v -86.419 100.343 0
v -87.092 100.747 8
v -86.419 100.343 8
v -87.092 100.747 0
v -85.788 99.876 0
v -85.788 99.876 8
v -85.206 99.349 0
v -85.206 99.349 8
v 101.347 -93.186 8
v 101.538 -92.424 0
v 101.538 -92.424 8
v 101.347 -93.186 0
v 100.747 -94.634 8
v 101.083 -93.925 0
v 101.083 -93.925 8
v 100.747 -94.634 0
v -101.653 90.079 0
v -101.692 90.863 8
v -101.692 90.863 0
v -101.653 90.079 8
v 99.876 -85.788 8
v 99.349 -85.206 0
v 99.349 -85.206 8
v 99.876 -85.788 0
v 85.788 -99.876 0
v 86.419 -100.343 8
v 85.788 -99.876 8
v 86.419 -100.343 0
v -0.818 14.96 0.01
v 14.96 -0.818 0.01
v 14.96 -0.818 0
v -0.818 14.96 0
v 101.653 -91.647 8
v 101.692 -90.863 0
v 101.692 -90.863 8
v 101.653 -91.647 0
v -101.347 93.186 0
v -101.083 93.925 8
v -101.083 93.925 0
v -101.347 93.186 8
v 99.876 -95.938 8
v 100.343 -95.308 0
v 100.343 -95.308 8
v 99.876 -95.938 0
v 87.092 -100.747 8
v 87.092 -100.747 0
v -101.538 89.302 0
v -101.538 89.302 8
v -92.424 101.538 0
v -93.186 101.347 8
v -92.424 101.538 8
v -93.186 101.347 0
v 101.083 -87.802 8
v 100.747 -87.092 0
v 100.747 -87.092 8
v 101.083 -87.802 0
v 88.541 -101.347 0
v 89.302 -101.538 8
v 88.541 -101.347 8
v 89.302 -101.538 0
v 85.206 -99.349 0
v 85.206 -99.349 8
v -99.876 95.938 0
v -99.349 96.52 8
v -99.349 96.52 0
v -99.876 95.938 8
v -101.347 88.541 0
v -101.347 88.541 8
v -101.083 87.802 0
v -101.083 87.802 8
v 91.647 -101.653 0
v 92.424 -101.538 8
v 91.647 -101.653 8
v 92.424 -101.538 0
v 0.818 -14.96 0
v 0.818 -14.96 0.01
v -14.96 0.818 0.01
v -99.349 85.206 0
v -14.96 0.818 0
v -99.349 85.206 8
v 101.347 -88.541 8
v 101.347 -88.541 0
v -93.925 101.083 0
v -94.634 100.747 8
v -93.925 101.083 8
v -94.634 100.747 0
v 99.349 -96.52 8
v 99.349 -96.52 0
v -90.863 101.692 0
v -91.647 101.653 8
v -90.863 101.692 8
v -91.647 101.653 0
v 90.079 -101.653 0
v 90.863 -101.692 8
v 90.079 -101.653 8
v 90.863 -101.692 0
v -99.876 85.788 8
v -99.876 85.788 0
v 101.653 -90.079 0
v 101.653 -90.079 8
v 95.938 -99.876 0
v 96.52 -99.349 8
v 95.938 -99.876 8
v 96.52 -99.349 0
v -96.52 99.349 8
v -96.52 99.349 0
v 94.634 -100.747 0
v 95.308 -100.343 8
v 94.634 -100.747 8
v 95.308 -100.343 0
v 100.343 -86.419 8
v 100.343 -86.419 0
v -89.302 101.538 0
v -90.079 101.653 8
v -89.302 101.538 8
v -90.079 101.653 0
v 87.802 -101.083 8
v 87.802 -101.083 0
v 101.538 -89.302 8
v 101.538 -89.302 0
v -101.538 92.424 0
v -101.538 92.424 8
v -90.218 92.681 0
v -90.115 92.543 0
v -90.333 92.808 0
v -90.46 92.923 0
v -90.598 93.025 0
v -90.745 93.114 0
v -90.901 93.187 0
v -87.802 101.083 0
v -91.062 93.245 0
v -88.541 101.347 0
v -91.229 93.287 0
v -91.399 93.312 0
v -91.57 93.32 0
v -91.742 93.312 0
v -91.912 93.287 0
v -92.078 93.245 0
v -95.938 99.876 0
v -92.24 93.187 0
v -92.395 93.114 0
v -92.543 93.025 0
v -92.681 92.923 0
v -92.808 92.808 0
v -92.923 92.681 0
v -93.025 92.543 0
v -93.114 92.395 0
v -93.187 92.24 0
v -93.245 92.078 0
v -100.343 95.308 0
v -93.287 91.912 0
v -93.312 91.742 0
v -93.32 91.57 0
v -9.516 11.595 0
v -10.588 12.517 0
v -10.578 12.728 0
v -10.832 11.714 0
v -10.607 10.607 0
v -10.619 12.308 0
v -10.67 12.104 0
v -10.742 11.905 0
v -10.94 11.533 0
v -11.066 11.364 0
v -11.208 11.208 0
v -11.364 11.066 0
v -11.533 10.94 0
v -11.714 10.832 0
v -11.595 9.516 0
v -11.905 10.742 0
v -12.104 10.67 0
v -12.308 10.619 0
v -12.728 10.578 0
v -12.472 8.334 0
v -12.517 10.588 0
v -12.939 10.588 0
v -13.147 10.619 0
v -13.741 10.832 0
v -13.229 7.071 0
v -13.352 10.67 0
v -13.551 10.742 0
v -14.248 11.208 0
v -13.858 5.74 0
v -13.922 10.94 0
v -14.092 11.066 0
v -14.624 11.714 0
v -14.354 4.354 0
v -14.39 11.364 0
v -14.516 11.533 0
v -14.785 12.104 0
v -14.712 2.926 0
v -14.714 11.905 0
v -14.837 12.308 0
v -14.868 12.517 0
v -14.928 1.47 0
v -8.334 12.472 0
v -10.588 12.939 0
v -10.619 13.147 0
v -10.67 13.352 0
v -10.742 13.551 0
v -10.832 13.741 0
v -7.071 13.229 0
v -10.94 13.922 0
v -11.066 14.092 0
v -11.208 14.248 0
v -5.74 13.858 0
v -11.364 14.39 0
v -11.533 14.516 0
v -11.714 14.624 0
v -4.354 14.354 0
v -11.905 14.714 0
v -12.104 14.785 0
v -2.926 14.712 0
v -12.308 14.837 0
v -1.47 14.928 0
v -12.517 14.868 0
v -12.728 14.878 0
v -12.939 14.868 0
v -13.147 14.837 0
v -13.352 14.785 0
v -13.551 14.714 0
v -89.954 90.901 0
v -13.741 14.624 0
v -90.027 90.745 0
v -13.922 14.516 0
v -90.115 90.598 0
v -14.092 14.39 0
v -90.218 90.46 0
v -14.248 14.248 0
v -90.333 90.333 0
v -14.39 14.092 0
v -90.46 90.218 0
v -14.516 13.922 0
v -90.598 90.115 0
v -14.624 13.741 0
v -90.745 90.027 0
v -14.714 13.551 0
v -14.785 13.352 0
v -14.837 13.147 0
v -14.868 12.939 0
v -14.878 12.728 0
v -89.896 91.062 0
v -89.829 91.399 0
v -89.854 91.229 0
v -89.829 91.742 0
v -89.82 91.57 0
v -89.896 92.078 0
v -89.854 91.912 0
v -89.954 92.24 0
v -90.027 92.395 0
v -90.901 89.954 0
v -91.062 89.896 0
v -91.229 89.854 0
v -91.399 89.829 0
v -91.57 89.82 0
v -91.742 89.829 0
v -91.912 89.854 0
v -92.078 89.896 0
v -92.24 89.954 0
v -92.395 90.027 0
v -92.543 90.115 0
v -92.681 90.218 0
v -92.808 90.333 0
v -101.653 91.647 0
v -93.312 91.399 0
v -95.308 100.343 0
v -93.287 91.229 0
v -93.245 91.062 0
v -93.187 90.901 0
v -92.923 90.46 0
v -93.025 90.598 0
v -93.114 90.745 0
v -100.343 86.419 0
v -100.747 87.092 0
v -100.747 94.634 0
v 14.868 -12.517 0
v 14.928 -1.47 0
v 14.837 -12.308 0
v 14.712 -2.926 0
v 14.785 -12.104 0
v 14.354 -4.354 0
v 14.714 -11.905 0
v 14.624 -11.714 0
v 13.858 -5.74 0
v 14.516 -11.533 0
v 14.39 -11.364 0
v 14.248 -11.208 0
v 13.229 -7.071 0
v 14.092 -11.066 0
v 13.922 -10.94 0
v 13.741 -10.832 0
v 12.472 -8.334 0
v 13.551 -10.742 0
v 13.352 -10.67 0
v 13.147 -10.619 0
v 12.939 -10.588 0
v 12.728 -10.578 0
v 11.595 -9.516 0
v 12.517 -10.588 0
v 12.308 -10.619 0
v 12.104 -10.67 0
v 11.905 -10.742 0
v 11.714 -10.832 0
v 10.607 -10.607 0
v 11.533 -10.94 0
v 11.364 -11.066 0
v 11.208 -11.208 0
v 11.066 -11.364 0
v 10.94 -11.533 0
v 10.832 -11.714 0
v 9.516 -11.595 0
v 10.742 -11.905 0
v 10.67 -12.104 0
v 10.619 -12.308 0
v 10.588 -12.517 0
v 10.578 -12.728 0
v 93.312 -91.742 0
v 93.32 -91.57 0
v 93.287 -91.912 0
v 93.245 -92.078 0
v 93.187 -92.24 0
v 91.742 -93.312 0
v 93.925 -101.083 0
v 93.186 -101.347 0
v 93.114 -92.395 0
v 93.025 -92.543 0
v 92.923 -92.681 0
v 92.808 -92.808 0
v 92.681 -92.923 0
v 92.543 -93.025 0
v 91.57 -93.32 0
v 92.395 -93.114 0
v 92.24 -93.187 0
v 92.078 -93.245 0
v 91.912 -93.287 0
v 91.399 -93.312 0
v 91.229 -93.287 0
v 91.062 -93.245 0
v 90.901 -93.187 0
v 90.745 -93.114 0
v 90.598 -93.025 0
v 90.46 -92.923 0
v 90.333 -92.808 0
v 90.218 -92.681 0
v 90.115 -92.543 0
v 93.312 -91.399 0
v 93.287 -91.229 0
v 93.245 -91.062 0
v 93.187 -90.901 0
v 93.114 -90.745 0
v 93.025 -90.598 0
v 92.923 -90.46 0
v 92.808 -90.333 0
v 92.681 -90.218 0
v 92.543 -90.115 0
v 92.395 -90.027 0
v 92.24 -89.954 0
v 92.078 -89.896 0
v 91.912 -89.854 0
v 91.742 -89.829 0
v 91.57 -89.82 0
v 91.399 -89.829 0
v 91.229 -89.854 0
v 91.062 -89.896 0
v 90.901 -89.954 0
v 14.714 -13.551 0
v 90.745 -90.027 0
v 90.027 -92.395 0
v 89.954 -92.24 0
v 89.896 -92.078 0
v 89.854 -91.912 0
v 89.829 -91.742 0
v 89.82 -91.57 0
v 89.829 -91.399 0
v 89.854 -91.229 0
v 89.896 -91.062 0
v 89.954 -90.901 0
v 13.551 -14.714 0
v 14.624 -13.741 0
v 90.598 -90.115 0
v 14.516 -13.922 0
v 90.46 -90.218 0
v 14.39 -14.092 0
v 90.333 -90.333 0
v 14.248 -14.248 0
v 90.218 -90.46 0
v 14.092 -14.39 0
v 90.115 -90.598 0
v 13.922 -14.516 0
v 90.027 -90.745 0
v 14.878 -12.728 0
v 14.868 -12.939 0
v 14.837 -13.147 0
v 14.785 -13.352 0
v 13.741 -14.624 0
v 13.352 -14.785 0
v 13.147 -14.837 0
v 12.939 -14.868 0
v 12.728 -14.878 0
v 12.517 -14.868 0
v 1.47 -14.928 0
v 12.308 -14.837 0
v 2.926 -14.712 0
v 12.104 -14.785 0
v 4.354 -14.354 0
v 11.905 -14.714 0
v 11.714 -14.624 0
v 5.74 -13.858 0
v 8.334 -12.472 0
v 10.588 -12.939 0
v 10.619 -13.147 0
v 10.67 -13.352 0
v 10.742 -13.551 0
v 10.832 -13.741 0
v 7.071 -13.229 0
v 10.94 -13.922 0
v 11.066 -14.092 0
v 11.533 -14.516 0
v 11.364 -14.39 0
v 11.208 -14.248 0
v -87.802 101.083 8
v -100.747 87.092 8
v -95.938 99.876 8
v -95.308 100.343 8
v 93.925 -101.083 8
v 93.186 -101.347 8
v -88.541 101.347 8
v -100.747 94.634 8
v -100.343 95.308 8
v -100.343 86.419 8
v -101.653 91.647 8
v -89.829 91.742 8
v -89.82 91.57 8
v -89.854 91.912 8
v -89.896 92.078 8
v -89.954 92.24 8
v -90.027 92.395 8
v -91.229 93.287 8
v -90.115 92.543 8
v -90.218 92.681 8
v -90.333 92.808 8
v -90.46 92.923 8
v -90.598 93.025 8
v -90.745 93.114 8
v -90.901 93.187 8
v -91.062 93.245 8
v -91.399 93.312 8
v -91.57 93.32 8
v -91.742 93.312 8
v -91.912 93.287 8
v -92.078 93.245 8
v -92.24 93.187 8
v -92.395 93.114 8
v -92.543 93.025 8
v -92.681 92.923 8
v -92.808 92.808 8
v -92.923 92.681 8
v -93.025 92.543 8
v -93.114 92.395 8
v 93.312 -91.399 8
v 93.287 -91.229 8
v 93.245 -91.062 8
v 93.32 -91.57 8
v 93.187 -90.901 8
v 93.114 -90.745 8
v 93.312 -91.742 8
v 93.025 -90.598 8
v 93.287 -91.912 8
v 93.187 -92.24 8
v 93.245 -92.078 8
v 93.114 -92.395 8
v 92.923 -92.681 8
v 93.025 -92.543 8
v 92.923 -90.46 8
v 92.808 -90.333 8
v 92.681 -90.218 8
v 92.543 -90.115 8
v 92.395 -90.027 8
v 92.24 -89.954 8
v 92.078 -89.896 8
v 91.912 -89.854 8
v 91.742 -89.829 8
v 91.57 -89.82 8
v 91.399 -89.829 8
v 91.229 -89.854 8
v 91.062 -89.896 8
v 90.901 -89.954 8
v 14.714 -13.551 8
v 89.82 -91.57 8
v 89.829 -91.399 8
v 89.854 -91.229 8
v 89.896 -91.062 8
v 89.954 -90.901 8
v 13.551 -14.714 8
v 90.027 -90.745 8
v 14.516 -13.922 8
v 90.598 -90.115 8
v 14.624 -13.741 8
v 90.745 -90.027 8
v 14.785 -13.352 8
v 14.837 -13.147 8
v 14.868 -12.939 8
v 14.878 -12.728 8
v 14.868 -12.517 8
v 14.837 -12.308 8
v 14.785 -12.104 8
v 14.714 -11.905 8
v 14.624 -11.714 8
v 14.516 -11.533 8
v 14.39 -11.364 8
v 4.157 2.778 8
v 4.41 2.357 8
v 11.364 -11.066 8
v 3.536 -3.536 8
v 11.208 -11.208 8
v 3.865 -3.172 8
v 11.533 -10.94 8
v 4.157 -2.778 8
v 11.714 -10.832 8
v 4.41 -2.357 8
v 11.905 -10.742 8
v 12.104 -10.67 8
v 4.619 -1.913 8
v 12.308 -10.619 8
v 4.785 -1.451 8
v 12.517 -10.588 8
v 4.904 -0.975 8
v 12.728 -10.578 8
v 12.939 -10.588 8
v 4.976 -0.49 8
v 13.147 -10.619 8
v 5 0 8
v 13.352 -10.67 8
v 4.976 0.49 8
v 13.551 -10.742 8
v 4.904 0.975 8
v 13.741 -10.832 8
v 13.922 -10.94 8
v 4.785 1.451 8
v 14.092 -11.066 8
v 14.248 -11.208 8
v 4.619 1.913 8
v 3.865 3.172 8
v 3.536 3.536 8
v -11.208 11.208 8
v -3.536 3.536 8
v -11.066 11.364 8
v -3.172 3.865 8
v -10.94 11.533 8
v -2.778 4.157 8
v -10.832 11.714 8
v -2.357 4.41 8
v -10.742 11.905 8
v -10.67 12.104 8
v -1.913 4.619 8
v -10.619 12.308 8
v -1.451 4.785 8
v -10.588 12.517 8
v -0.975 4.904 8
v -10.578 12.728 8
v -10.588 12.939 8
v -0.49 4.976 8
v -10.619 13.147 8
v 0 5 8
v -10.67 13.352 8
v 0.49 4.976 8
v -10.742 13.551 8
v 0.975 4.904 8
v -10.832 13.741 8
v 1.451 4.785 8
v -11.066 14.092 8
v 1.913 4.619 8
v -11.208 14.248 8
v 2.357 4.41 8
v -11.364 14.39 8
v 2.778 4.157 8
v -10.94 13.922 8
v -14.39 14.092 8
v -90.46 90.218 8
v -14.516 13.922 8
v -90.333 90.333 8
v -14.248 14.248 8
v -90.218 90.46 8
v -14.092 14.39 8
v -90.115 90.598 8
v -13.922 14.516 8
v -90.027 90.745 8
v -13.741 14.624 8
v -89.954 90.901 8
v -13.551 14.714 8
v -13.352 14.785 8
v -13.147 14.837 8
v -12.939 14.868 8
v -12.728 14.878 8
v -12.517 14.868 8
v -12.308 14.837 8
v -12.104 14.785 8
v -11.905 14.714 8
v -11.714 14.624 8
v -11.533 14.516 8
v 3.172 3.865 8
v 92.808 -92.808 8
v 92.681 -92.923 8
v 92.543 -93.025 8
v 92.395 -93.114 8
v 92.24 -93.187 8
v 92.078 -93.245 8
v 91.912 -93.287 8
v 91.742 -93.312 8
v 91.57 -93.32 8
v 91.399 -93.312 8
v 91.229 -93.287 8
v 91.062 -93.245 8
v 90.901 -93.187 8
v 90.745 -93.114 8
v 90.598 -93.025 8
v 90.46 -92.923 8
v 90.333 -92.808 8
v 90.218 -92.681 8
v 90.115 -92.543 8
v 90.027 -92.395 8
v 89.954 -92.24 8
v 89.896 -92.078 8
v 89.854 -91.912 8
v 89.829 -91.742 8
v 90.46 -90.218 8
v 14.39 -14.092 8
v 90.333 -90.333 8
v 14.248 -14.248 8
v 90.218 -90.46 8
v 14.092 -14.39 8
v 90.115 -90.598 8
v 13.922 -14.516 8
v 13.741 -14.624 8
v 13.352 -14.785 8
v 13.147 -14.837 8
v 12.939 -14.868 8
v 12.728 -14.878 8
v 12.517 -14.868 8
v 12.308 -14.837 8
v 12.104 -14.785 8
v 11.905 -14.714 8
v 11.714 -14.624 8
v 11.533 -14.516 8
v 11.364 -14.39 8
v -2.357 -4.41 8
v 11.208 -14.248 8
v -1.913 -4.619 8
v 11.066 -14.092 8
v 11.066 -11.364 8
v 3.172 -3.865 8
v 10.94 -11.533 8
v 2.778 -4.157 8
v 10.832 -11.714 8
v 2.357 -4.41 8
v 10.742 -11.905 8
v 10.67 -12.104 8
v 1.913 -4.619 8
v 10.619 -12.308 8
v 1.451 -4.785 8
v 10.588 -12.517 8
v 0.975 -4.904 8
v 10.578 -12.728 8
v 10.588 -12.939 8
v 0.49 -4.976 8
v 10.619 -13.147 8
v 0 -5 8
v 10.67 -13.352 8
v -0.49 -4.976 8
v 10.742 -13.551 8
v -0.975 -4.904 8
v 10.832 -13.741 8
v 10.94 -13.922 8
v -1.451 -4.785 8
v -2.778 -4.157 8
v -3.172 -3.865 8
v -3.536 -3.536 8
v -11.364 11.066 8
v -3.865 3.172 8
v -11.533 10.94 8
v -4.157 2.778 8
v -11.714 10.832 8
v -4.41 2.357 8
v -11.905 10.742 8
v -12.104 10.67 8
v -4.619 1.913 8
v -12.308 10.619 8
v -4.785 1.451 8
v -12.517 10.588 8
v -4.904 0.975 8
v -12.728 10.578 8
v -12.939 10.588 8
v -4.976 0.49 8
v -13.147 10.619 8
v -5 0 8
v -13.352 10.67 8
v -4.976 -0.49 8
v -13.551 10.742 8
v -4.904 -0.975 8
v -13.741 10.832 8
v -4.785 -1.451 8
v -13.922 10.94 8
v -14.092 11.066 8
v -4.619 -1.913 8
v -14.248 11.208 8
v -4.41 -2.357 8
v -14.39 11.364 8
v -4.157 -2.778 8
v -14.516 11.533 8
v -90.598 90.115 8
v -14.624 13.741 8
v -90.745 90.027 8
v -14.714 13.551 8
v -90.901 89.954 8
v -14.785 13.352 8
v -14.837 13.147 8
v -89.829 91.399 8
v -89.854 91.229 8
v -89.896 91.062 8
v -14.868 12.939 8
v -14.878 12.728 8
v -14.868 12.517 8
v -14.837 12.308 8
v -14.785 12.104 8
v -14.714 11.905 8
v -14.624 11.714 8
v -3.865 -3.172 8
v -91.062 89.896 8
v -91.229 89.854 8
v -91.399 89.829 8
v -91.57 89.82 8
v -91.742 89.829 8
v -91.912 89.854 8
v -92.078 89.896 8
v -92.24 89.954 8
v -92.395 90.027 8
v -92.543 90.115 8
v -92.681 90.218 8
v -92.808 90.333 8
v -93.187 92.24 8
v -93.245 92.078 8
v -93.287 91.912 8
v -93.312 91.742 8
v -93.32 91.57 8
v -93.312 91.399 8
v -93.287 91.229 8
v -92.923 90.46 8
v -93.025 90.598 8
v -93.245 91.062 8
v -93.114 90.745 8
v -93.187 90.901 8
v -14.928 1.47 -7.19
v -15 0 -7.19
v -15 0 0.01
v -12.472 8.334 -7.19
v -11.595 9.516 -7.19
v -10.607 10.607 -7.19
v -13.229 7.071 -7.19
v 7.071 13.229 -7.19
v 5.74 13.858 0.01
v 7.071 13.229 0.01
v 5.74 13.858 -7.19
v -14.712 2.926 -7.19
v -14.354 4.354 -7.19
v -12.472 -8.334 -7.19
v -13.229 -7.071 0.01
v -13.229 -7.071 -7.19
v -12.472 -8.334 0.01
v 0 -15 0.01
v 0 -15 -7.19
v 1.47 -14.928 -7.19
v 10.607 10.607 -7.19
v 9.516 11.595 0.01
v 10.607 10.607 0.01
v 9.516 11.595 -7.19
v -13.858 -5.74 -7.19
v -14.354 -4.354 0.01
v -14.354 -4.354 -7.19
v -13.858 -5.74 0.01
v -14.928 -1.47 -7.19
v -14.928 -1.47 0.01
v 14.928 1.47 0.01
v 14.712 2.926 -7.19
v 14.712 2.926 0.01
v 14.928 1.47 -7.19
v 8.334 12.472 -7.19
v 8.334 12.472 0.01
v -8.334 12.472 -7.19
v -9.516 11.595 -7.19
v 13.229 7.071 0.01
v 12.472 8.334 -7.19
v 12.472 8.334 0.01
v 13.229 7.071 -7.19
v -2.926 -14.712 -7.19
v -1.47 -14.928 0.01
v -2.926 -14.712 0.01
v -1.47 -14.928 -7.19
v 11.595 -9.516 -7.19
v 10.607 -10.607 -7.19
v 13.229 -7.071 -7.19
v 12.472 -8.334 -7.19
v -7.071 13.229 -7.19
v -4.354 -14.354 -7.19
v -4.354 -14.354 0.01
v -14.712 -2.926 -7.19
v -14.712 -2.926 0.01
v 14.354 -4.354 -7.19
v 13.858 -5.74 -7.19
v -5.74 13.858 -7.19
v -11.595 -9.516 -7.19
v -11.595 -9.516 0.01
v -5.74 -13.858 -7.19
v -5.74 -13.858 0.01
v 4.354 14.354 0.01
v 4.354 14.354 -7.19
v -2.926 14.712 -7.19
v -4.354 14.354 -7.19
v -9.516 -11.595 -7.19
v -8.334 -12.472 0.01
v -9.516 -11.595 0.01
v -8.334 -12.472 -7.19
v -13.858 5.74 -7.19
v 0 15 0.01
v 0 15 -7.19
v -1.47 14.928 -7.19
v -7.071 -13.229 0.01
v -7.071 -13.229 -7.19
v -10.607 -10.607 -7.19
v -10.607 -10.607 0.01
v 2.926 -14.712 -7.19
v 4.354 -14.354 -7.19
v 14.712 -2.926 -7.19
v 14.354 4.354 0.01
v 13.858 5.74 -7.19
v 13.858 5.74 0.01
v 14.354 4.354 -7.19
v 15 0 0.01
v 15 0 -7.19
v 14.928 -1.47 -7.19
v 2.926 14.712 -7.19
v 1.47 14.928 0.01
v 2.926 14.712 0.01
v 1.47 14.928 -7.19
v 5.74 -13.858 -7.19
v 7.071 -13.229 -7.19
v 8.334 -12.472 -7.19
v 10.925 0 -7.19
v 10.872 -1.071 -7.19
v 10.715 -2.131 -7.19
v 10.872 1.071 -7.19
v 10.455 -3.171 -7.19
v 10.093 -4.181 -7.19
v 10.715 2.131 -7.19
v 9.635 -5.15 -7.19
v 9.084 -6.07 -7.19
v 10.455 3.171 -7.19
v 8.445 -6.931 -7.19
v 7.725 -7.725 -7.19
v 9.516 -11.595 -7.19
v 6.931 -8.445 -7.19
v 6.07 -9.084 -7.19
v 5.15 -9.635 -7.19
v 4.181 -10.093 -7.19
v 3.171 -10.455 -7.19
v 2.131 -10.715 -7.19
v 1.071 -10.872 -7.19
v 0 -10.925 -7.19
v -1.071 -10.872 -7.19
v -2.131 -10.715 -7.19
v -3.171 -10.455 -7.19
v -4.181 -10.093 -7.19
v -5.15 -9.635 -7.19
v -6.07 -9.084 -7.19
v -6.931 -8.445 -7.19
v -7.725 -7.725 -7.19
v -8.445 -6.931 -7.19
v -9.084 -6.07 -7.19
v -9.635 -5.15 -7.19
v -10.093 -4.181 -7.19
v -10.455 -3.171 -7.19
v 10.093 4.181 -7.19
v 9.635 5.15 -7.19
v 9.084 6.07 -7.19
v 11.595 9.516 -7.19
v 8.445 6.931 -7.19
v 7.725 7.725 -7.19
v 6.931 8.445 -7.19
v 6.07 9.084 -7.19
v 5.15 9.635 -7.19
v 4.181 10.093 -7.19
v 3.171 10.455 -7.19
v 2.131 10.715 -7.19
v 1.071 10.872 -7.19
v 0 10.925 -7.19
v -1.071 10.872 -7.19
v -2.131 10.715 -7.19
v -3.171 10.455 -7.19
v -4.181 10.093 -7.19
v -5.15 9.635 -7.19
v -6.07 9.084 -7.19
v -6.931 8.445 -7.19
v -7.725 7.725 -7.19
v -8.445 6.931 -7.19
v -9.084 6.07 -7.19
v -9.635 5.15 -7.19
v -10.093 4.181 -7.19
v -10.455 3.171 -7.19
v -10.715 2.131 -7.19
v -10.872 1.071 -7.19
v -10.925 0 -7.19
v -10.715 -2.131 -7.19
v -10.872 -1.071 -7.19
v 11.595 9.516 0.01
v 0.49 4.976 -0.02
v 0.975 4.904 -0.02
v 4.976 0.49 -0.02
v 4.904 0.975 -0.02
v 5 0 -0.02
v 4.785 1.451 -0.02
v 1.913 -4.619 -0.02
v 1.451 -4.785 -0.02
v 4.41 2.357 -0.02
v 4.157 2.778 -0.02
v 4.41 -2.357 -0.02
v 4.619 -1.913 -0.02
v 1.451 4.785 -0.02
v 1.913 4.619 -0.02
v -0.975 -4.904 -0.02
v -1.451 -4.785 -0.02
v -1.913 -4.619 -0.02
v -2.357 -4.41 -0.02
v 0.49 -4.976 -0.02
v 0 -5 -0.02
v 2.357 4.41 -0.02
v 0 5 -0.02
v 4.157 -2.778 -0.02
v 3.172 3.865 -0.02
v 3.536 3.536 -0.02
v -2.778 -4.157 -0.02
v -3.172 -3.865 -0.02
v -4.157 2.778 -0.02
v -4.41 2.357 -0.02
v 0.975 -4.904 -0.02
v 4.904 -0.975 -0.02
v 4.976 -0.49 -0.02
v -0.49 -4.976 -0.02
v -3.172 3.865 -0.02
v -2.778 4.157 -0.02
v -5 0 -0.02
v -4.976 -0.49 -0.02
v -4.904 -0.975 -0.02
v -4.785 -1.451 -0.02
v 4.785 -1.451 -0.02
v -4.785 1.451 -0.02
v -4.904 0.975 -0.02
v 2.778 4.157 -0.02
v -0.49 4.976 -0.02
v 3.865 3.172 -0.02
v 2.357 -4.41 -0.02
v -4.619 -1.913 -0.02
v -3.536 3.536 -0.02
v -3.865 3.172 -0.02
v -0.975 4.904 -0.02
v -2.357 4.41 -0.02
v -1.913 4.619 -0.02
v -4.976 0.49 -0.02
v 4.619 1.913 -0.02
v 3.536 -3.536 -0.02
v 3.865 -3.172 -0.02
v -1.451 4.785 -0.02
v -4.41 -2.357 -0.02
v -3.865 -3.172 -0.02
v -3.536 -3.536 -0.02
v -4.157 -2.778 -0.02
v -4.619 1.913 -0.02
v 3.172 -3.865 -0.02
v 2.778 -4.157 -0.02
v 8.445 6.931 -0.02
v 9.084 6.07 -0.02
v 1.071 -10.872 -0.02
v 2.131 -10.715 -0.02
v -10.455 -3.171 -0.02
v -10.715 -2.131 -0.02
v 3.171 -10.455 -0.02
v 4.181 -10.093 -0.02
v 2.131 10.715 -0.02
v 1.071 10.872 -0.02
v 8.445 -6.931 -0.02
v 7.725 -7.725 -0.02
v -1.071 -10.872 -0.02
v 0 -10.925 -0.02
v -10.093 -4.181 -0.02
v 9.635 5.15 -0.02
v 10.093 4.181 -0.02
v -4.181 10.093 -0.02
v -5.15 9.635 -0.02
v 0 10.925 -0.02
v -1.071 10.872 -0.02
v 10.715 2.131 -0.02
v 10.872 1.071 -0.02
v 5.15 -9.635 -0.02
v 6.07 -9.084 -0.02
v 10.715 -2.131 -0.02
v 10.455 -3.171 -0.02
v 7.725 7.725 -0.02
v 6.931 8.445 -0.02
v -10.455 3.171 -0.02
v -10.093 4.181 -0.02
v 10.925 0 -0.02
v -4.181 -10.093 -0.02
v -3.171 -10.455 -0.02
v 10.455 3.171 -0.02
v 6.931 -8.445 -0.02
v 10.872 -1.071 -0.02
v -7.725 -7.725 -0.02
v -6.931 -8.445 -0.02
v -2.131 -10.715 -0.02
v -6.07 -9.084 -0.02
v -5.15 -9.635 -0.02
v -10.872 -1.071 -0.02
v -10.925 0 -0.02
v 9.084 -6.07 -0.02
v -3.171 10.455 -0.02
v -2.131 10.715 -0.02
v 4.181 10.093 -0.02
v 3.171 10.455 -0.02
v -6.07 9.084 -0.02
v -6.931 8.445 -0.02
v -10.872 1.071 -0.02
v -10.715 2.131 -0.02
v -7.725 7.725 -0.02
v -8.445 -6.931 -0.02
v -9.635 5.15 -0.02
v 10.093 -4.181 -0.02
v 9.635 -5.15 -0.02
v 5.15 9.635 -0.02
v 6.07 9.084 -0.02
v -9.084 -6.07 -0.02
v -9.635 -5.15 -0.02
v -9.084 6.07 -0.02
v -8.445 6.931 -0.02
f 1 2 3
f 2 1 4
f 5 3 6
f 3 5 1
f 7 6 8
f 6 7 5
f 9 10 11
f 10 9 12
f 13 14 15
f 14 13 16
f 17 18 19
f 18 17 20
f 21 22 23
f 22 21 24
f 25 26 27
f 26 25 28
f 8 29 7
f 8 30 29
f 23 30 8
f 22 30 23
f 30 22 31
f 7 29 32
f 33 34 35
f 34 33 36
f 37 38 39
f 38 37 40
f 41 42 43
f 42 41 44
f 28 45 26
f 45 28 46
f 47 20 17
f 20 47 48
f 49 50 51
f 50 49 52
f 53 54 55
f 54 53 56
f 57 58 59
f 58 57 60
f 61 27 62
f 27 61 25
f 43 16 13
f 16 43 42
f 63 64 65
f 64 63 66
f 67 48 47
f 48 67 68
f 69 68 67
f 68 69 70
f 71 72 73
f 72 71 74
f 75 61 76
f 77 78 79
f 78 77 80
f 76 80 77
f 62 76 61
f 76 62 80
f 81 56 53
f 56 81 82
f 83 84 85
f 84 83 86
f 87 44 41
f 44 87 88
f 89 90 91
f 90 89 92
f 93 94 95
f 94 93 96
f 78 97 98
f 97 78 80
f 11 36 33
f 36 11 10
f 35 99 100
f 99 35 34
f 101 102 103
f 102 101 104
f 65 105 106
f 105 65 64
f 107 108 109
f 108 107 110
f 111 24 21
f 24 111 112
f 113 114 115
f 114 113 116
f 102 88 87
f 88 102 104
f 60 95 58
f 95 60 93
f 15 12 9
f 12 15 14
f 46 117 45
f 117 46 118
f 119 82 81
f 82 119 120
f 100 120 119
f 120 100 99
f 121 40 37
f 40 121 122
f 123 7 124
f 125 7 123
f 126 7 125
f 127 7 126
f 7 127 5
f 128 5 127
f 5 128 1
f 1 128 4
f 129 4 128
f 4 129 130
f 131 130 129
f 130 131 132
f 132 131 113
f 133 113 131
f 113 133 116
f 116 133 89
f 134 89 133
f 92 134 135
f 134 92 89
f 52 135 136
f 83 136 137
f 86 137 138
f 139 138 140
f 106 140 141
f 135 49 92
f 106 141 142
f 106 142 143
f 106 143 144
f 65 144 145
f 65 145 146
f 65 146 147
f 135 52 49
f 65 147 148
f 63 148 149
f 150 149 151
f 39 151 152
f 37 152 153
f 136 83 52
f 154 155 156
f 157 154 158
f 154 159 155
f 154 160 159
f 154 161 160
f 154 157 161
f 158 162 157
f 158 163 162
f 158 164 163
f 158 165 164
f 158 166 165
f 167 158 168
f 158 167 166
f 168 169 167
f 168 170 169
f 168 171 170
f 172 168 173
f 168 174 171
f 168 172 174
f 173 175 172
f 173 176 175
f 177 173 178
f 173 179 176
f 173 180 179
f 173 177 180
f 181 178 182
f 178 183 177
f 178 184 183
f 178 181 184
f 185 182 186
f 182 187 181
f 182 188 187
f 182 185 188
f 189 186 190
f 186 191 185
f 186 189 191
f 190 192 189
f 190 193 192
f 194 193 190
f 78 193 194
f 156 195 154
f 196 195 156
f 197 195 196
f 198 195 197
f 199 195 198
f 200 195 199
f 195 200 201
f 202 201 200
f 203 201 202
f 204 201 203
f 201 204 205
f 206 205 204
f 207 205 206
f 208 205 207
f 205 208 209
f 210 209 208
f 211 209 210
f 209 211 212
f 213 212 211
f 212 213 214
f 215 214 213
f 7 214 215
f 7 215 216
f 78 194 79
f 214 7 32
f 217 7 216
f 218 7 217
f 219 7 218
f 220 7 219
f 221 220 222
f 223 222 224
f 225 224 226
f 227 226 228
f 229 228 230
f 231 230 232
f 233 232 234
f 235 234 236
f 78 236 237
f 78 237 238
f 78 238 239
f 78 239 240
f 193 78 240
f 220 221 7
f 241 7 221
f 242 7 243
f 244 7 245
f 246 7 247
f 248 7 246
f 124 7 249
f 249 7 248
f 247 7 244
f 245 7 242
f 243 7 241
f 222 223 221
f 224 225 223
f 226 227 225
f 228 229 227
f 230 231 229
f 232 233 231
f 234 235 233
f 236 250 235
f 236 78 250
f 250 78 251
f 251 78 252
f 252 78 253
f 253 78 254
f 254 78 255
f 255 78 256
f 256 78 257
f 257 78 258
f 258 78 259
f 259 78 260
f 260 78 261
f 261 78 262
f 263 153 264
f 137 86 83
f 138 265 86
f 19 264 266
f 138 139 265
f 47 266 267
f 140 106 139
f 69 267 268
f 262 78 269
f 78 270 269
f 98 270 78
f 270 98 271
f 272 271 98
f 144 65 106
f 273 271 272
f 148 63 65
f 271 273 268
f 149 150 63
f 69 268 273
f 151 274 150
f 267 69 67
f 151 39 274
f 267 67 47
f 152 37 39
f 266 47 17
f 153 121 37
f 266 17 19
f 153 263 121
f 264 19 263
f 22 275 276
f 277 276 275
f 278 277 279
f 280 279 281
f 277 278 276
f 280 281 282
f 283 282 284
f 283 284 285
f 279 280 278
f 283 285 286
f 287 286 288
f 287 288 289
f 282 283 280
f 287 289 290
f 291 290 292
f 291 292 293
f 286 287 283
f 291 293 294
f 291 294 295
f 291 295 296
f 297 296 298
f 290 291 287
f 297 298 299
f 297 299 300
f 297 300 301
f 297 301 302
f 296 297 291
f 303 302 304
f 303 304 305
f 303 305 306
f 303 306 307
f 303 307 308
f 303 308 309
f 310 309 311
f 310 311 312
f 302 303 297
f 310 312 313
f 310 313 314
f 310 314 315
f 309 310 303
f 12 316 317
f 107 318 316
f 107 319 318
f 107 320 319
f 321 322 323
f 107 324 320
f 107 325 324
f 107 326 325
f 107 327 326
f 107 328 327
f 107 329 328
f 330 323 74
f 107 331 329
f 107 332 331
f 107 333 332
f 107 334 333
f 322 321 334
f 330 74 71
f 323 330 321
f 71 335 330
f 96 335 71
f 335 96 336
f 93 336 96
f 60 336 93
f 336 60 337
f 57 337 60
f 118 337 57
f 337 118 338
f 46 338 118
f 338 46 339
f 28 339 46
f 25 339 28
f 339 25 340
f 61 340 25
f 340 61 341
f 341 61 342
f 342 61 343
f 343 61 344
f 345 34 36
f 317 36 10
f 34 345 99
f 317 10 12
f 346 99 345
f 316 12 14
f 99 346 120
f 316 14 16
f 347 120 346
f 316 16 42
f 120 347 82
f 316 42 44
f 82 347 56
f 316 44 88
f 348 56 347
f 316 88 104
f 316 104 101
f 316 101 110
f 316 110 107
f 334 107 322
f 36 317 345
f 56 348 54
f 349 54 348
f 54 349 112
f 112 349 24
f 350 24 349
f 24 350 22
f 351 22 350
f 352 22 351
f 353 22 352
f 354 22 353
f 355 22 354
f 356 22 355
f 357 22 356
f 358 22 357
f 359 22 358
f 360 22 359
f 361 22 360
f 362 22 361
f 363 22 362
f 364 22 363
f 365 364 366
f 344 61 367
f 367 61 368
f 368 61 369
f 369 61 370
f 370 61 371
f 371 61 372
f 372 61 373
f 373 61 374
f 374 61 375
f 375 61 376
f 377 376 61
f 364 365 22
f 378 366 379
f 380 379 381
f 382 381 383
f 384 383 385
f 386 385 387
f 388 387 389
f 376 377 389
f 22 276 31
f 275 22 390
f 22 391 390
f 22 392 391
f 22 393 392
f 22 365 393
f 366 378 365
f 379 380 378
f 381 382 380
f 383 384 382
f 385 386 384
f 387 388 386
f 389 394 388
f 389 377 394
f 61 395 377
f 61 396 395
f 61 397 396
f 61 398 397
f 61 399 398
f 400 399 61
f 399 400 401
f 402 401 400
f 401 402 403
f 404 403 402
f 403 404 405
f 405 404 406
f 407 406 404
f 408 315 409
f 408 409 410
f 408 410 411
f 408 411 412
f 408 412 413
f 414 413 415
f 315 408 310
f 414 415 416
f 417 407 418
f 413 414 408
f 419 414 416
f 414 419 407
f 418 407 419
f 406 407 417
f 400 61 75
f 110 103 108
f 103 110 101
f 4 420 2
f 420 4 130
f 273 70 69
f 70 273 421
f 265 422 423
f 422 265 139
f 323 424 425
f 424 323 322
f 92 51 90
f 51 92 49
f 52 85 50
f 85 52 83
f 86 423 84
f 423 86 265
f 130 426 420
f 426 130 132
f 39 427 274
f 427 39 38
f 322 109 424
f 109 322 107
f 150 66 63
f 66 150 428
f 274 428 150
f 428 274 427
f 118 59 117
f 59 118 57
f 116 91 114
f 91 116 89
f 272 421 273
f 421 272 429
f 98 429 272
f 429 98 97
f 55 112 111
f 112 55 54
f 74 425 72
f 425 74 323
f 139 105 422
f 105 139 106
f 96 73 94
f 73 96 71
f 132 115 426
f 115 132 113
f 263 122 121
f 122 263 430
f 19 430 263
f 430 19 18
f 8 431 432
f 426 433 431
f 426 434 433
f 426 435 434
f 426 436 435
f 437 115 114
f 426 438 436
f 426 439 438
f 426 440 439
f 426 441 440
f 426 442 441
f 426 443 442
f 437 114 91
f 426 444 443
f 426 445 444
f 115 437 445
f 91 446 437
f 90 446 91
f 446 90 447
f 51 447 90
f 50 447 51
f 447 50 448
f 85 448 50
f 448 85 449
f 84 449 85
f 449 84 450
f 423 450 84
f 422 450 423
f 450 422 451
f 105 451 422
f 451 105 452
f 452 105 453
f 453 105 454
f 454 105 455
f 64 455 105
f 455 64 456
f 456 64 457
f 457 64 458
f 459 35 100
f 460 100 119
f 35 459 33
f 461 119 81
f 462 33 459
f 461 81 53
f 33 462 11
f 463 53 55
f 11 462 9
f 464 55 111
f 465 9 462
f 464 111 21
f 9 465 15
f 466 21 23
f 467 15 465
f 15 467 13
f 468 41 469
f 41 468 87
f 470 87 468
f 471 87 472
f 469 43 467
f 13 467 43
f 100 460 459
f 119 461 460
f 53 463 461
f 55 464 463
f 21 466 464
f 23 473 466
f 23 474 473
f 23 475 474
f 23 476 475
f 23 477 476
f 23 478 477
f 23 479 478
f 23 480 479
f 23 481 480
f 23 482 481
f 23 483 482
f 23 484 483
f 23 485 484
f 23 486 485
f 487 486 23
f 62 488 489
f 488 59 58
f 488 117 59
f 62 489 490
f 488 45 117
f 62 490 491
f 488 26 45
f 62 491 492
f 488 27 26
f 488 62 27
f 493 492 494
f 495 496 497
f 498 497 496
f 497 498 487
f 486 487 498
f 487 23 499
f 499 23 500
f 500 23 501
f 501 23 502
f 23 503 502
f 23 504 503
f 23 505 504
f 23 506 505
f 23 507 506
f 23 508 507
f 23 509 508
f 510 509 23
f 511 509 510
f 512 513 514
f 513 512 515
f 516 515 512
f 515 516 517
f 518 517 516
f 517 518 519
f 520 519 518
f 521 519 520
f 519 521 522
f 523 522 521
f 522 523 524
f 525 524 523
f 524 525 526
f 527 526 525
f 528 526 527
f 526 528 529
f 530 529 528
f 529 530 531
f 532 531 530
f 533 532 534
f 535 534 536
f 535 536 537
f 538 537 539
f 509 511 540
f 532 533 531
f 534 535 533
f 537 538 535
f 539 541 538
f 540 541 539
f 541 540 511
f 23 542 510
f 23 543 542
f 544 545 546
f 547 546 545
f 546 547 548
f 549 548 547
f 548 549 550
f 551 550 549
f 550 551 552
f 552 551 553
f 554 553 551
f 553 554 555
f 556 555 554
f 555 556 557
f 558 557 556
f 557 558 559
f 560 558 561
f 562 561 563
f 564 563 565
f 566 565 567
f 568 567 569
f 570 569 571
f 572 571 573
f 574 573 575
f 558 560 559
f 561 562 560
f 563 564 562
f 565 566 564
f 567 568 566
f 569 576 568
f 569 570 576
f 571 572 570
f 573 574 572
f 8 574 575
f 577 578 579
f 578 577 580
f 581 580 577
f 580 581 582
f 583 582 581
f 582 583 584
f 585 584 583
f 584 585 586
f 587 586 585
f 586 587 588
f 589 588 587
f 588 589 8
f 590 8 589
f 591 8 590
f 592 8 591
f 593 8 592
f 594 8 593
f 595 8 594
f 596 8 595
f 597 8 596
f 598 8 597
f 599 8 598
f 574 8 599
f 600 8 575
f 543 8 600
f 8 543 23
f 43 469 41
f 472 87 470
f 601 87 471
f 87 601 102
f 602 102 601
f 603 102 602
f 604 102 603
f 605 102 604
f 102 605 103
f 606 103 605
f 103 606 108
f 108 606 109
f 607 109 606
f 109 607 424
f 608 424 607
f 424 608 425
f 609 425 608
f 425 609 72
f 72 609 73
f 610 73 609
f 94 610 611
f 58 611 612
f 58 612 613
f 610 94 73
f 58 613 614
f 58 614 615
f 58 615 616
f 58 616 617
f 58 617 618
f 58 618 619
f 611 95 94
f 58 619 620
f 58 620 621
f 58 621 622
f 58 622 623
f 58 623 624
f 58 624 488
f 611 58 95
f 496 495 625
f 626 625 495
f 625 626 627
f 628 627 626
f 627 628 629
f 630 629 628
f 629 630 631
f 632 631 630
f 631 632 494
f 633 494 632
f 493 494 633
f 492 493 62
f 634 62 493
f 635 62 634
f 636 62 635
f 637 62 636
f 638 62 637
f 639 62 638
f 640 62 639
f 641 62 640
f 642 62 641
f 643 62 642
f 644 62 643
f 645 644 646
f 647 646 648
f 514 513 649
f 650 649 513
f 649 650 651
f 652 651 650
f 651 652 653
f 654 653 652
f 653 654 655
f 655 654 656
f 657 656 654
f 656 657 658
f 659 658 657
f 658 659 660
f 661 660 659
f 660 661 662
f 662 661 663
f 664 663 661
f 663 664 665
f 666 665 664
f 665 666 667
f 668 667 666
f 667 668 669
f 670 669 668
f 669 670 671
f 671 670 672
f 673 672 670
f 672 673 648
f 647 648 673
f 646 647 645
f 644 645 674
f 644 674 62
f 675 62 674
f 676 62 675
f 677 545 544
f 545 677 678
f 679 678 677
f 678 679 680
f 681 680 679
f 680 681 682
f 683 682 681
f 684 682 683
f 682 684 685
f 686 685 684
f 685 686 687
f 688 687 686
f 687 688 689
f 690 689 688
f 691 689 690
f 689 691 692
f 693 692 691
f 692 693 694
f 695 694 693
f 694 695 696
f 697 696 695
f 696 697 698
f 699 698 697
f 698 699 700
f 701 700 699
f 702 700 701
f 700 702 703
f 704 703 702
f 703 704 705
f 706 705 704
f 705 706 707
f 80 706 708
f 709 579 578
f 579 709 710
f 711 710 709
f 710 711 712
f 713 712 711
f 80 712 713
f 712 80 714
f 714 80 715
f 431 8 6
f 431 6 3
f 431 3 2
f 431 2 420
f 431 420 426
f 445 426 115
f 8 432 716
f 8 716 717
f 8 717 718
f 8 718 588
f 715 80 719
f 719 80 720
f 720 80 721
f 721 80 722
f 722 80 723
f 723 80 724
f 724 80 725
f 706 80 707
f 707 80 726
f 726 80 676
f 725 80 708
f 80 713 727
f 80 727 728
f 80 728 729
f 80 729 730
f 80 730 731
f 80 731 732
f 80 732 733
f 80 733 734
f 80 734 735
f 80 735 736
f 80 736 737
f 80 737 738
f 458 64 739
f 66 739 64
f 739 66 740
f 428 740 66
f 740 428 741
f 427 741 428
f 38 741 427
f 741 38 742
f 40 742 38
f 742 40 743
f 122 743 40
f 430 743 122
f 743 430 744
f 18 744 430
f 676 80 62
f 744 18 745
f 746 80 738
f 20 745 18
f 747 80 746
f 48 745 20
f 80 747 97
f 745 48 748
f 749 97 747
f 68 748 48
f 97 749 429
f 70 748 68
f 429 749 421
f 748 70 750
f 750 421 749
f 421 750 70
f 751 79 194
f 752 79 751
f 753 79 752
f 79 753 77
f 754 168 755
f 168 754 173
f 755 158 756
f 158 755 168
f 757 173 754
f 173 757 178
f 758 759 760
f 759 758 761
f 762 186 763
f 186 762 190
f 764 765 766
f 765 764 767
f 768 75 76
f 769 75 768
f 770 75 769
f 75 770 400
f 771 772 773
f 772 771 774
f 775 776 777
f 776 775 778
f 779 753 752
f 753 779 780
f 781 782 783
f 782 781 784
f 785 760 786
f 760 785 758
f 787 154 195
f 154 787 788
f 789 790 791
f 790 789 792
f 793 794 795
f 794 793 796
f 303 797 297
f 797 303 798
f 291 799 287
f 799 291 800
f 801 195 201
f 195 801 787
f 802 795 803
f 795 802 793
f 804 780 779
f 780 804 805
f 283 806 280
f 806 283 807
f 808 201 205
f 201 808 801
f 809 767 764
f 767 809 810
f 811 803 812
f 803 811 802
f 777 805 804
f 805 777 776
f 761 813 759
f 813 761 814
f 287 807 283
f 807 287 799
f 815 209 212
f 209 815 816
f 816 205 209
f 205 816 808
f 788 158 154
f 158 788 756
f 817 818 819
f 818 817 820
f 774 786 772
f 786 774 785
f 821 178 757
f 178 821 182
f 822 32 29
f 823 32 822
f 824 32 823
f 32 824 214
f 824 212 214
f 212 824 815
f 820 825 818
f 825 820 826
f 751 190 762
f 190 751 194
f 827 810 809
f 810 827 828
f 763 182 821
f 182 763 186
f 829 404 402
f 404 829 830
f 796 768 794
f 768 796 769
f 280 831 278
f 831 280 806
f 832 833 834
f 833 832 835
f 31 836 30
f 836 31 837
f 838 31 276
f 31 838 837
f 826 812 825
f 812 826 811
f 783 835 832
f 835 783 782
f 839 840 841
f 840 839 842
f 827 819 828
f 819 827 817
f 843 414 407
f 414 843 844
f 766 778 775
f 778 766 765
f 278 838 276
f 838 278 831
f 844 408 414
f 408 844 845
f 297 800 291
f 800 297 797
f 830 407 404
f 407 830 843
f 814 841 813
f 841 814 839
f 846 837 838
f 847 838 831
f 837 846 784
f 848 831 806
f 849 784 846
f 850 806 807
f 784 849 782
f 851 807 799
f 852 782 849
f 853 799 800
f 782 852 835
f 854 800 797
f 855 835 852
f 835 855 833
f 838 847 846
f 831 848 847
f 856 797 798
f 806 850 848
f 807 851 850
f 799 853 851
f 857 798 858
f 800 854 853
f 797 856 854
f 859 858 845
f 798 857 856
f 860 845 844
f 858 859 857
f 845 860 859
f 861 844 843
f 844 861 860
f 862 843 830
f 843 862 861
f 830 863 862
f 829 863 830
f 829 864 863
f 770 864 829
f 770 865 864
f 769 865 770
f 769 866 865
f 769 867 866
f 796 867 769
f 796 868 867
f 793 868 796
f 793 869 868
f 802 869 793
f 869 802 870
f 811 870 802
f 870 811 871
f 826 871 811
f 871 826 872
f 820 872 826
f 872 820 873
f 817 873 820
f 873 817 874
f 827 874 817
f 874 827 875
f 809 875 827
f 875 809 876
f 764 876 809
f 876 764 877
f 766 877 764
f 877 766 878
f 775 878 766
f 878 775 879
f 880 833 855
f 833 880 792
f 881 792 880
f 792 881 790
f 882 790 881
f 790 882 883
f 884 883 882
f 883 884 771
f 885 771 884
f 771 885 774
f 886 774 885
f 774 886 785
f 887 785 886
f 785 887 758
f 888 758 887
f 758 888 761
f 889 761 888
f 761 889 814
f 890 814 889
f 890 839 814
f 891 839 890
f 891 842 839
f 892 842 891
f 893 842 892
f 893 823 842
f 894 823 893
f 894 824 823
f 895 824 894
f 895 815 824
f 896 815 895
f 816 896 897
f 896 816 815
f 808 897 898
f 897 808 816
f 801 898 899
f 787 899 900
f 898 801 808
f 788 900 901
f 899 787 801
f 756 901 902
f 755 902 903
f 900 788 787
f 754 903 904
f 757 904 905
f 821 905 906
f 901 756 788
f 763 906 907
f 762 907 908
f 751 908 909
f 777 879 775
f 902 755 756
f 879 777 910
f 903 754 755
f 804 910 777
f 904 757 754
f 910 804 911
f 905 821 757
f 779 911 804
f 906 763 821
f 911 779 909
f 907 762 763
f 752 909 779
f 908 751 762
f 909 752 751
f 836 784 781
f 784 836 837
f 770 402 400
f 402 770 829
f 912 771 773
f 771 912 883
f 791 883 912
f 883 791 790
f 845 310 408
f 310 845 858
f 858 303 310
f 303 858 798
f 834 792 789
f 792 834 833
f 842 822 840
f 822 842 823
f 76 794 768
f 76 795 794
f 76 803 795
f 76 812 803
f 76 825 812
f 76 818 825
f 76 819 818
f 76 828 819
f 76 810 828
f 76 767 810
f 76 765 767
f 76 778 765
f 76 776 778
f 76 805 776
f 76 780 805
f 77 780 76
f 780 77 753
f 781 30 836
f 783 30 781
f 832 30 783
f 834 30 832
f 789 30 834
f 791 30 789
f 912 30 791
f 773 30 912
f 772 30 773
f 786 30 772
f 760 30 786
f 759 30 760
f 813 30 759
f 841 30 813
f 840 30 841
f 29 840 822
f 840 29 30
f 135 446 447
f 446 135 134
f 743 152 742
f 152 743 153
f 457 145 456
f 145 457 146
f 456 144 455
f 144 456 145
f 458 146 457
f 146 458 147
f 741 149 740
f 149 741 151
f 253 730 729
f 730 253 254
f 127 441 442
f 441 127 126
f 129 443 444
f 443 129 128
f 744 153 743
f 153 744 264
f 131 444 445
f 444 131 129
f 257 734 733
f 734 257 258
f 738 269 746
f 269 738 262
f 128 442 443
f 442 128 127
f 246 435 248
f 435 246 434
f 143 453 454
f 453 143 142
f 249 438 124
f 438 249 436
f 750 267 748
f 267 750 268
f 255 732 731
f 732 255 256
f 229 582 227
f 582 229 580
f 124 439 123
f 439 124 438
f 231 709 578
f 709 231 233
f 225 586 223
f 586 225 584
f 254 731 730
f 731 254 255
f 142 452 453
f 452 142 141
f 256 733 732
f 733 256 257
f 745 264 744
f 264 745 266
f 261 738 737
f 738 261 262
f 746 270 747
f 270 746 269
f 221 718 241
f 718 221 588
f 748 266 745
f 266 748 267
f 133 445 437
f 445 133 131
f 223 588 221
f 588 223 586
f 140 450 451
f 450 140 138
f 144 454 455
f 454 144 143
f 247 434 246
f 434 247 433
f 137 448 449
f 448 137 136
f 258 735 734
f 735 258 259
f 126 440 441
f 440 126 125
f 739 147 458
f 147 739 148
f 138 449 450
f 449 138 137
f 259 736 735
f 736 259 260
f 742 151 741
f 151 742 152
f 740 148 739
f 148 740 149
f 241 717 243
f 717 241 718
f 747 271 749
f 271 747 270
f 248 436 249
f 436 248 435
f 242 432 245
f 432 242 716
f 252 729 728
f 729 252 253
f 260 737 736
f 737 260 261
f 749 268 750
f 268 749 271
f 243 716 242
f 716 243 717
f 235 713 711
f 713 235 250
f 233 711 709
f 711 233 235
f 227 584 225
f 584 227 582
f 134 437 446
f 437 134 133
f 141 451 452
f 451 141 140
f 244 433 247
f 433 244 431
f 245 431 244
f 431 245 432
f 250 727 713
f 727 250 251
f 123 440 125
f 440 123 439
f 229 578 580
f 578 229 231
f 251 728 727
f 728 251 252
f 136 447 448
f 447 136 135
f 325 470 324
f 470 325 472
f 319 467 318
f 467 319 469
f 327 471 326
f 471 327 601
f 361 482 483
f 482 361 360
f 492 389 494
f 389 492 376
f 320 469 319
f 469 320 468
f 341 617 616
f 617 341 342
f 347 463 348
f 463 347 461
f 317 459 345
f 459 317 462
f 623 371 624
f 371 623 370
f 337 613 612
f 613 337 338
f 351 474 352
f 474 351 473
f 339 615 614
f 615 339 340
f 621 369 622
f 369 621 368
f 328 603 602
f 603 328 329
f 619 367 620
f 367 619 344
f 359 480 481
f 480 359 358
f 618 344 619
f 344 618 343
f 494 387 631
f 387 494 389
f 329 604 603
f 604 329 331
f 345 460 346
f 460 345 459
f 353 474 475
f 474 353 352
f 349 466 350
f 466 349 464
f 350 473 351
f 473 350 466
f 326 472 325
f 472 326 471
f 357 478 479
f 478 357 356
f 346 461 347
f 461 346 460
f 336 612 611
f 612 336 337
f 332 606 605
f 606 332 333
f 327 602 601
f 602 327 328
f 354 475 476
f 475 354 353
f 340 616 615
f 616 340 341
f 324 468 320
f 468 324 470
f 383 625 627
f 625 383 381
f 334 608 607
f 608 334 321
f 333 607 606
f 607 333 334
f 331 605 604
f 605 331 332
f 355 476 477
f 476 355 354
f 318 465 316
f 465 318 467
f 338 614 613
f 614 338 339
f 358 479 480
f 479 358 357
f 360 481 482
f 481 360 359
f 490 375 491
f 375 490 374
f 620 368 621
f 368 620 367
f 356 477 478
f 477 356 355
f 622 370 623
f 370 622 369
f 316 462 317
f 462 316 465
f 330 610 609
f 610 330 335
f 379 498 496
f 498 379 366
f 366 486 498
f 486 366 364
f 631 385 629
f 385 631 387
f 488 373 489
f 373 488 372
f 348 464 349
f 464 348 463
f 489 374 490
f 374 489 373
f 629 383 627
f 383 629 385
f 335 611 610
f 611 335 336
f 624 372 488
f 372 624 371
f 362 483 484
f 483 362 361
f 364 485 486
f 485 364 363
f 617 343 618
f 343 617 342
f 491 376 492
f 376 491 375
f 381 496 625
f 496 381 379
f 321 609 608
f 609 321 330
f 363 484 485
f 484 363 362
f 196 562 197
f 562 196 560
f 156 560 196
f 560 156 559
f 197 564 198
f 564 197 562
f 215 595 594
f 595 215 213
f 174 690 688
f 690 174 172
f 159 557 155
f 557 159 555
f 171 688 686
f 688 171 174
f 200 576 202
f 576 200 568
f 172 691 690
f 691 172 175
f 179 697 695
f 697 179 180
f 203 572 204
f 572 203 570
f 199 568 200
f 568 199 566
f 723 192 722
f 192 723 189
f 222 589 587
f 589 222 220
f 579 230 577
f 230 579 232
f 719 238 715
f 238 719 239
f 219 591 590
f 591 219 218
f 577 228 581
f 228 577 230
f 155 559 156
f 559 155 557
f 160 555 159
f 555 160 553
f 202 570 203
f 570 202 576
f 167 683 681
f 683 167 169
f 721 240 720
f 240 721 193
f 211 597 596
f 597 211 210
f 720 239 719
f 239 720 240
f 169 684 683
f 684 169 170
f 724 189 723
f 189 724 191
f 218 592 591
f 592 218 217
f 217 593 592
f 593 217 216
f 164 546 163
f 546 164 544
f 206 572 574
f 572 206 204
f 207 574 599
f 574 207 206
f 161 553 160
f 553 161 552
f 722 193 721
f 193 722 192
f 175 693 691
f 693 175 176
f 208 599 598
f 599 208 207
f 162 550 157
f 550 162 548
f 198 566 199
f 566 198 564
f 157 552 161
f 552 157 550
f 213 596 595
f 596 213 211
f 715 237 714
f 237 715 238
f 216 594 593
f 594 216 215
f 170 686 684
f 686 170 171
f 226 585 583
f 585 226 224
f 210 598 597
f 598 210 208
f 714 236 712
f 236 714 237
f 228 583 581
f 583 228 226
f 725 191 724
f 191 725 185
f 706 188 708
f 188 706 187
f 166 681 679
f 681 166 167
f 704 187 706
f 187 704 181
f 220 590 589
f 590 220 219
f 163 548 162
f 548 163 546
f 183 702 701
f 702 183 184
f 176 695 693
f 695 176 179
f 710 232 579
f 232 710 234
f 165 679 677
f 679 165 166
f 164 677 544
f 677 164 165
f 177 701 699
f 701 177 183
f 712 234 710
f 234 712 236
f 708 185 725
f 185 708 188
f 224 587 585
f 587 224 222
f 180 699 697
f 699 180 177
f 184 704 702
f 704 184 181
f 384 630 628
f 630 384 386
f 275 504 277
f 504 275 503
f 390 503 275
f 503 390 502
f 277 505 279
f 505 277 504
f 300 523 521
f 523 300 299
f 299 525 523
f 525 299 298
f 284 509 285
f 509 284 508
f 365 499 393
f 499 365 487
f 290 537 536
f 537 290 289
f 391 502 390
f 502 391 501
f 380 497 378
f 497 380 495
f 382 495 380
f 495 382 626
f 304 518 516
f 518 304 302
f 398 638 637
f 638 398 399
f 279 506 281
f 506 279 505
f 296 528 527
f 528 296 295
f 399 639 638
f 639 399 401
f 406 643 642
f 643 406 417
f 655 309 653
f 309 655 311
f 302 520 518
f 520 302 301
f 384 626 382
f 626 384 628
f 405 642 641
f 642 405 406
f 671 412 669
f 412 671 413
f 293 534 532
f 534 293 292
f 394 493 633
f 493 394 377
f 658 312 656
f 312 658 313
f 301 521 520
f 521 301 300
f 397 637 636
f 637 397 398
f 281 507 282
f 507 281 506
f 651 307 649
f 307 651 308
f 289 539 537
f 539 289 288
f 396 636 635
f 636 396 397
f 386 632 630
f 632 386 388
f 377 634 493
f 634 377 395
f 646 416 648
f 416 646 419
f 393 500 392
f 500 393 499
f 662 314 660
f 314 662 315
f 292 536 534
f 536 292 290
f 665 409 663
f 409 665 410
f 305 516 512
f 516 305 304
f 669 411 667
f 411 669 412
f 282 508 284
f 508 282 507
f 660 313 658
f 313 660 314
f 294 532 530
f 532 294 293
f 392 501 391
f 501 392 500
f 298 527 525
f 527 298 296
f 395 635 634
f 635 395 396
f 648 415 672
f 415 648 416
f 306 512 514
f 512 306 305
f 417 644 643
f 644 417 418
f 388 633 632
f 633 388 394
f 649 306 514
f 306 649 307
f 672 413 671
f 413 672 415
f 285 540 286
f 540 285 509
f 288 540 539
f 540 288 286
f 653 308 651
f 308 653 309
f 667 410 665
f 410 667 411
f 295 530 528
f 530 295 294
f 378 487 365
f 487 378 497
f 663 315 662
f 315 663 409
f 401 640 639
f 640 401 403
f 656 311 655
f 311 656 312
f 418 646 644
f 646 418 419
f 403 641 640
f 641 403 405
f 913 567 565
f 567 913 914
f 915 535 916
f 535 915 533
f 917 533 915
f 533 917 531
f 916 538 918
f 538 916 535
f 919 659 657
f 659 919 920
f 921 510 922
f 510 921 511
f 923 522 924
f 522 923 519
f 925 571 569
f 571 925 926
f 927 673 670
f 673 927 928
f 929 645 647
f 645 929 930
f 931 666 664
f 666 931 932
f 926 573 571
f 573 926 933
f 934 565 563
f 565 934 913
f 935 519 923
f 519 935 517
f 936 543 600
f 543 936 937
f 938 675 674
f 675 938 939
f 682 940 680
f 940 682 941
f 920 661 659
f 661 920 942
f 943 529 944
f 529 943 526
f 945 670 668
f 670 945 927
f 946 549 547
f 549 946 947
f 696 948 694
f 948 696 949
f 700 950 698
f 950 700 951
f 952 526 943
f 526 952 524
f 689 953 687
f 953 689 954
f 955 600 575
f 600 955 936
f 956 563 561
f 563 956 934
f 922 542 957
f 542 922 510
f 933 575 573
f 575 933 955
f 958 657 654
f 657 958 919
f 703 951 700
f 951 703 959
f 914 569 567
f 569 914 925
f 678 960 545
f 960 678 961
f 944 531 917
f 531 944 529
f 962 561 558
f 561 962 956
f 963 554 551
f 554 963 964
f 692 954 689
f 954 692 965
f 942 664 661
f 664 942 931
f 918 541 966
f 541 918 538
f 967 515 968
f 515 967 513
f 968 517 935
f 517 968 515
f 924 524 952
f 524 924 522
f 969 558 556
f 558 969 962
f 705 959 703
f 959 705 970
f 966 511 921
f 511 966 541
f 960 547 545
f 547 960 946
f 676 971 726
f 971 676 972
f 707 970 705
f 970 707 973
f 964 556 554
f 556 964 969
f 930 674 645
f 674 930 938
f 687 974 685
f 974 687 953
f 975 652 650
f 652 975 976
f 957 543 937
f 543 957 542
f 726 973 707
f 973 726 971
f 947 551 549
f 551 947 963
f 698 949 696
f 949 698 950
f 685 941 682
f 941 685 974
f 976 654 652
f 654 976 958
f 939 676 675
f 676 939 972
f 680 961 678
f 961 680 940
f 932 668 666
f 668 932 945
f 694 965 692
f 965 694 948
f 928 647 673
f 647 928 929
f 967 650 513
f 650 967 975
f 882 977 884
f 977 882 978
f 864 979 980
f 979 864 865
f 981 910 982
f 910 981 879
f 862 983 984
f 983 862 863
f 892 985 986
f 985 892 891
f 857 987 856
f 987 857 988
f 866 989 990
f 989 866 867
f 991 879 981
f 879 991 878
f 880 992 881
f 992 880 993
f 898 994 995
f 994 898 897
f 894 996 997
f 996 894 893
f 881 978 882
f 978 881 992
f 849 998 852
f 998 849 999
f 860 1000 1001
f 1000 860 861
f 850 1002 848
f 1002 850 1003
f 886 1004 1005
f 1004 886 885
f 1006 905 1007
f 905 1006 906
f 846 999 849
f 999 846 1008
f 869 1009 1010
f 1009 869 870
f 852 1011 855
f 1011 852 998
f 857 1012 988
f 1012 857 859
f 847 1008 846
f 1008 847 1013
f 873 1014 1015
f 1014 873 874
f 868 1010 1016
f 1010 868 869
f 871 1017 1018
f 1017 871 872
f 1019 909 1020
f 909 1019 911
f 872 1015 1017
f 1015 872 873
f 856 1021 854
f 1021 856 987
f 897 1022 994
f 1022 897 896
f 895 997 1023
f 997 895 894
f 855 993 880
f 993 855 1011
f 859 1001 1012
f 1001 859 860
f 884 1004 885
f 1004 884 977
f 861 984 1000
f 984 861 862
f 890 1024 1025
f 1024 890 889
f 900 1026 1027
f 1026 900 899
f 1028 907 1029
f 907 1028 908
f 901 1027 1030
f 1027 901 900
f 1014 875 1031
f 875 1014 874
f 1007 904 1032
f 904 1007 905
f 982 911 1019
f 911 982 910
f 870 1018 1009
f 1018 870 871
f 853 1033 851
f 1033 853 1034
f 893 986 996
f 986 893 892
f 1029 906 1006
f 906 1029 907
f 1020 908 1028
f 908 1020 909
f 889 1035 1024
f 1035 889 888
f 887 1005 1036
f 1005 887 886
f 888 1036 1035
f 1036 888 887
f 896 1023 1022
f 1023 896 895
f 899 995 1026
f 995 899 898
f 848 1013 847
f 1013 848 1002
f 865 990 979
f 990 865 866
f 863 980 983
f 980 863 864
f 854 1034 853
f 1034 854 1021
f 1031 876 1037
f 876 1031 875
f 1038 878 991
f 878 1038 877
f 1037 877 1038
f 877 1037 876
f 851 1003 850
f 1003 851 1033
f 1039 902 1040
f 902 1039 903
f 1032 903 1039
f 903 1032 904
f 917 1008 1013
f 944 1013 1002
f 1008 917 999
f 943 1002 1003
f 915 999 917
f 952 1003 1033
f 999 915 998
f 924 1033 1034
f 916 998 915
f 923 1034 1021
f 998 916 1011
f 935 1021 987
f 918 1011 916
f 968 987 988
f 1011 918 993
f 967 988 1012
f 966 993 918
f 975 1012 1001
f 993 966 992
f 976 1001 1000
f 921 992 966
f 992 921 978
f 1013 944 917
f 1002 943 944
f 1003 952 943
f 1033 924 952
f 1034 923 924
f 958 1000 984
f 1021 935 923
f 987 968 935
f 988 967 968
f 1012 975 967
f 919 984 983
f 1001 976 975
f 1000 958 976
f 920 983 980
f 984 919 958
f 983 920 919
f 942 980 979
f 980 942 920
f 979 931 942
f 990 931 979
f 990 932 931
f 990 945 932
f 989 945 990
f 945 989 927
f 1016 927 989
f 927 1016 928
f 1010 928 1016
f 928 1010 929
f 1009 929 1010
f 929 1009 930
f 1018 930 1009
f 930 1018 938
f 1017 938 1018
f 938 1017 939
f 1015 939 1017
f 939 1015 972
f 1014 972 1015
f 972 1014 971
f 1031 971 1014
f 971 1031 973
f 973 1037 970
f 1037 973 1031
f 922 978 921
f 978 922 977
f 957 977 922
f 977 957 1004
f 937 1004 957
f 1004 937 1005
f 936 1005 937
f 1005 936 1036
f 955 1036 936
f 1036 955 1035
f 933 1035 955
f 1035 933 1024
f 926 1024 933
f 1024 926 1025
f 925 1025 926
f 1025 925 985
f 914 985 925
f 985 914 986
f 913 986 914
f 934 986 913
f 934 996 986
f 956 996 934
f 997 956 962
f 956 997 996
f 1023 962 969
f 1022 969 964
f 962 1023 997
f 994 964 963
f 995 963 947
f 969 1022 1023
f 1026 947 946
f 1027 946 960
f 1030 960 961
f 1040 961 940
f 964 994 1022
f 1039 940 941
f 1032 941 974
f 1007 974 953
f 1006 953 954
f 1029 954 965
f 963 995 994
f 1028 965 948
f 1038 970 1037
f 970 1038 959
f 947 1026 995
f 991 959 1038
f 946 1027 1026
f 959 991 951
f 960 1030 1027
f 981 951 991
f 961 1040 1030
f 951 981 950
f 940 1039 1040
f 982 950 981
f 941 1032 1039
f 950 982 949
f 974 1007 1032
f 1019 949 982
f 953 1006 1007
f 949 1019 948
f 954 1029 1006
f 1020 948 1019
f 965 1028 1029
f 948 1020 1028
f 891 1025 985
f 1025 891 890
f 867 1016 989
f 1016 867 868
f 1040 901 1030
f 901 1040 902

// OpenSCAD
// Gen-DF — rear BEARING BRIDGE (bar endbell, 2026-10-10): a 608 boss on a 20 mm wide bar that spans the
// two frame rods at 135 deg and 135+180 deg (R = flange_bolt_r). The front bridge uses the rods at 45/225 deg, the rear
// bridge the rods at 135/315 deg, so the two bridges cross at 90 deg and the stator is held at 4 points.
// A bar instead of a full disc is what lets this big-ring kit fit ONE 410 mm plate. Print flat face DOWN (boss up, no supports).
// Brace holes (temporary M4 jack rods, R = brace_r) sit on the bar axis.
include <parameters.scad>;
$fn = 64;
bar_w = 20;
bar_len = 2 * (flange_bolt_r + 9);
module bar_2d() { offset(r=8) offset(delta=-8) square([bar_len, bar_w], center=true); }
difference() {
    rotate([0, 0, 135]) union() {
        linear_extrude(endbell_thick) bar_2d();
        translate([0, 0, -bearing_h + 0.01]) cylinder(d=30, h=bearing_h);
    }
    translate([0, 0, -bearing_h - 0.1]) cylinder(d=endbell_shaft_clear, h=50);
    translate([0, 0, -bearing_h - 0.02]) cylinder(d=bearing_d, h=bearing_h);
    for (s = [0, 180]) rotate([0, 0, 135 + s]) translate([flange_bolt_r, 0, -20]) cylinder(d=m3_clear, h=60);
    for (a = brace_angles) translate([brace_r*cos(a), brace_r*sin(a), -20]) cylinder(d=brace_d, h=50);
}
